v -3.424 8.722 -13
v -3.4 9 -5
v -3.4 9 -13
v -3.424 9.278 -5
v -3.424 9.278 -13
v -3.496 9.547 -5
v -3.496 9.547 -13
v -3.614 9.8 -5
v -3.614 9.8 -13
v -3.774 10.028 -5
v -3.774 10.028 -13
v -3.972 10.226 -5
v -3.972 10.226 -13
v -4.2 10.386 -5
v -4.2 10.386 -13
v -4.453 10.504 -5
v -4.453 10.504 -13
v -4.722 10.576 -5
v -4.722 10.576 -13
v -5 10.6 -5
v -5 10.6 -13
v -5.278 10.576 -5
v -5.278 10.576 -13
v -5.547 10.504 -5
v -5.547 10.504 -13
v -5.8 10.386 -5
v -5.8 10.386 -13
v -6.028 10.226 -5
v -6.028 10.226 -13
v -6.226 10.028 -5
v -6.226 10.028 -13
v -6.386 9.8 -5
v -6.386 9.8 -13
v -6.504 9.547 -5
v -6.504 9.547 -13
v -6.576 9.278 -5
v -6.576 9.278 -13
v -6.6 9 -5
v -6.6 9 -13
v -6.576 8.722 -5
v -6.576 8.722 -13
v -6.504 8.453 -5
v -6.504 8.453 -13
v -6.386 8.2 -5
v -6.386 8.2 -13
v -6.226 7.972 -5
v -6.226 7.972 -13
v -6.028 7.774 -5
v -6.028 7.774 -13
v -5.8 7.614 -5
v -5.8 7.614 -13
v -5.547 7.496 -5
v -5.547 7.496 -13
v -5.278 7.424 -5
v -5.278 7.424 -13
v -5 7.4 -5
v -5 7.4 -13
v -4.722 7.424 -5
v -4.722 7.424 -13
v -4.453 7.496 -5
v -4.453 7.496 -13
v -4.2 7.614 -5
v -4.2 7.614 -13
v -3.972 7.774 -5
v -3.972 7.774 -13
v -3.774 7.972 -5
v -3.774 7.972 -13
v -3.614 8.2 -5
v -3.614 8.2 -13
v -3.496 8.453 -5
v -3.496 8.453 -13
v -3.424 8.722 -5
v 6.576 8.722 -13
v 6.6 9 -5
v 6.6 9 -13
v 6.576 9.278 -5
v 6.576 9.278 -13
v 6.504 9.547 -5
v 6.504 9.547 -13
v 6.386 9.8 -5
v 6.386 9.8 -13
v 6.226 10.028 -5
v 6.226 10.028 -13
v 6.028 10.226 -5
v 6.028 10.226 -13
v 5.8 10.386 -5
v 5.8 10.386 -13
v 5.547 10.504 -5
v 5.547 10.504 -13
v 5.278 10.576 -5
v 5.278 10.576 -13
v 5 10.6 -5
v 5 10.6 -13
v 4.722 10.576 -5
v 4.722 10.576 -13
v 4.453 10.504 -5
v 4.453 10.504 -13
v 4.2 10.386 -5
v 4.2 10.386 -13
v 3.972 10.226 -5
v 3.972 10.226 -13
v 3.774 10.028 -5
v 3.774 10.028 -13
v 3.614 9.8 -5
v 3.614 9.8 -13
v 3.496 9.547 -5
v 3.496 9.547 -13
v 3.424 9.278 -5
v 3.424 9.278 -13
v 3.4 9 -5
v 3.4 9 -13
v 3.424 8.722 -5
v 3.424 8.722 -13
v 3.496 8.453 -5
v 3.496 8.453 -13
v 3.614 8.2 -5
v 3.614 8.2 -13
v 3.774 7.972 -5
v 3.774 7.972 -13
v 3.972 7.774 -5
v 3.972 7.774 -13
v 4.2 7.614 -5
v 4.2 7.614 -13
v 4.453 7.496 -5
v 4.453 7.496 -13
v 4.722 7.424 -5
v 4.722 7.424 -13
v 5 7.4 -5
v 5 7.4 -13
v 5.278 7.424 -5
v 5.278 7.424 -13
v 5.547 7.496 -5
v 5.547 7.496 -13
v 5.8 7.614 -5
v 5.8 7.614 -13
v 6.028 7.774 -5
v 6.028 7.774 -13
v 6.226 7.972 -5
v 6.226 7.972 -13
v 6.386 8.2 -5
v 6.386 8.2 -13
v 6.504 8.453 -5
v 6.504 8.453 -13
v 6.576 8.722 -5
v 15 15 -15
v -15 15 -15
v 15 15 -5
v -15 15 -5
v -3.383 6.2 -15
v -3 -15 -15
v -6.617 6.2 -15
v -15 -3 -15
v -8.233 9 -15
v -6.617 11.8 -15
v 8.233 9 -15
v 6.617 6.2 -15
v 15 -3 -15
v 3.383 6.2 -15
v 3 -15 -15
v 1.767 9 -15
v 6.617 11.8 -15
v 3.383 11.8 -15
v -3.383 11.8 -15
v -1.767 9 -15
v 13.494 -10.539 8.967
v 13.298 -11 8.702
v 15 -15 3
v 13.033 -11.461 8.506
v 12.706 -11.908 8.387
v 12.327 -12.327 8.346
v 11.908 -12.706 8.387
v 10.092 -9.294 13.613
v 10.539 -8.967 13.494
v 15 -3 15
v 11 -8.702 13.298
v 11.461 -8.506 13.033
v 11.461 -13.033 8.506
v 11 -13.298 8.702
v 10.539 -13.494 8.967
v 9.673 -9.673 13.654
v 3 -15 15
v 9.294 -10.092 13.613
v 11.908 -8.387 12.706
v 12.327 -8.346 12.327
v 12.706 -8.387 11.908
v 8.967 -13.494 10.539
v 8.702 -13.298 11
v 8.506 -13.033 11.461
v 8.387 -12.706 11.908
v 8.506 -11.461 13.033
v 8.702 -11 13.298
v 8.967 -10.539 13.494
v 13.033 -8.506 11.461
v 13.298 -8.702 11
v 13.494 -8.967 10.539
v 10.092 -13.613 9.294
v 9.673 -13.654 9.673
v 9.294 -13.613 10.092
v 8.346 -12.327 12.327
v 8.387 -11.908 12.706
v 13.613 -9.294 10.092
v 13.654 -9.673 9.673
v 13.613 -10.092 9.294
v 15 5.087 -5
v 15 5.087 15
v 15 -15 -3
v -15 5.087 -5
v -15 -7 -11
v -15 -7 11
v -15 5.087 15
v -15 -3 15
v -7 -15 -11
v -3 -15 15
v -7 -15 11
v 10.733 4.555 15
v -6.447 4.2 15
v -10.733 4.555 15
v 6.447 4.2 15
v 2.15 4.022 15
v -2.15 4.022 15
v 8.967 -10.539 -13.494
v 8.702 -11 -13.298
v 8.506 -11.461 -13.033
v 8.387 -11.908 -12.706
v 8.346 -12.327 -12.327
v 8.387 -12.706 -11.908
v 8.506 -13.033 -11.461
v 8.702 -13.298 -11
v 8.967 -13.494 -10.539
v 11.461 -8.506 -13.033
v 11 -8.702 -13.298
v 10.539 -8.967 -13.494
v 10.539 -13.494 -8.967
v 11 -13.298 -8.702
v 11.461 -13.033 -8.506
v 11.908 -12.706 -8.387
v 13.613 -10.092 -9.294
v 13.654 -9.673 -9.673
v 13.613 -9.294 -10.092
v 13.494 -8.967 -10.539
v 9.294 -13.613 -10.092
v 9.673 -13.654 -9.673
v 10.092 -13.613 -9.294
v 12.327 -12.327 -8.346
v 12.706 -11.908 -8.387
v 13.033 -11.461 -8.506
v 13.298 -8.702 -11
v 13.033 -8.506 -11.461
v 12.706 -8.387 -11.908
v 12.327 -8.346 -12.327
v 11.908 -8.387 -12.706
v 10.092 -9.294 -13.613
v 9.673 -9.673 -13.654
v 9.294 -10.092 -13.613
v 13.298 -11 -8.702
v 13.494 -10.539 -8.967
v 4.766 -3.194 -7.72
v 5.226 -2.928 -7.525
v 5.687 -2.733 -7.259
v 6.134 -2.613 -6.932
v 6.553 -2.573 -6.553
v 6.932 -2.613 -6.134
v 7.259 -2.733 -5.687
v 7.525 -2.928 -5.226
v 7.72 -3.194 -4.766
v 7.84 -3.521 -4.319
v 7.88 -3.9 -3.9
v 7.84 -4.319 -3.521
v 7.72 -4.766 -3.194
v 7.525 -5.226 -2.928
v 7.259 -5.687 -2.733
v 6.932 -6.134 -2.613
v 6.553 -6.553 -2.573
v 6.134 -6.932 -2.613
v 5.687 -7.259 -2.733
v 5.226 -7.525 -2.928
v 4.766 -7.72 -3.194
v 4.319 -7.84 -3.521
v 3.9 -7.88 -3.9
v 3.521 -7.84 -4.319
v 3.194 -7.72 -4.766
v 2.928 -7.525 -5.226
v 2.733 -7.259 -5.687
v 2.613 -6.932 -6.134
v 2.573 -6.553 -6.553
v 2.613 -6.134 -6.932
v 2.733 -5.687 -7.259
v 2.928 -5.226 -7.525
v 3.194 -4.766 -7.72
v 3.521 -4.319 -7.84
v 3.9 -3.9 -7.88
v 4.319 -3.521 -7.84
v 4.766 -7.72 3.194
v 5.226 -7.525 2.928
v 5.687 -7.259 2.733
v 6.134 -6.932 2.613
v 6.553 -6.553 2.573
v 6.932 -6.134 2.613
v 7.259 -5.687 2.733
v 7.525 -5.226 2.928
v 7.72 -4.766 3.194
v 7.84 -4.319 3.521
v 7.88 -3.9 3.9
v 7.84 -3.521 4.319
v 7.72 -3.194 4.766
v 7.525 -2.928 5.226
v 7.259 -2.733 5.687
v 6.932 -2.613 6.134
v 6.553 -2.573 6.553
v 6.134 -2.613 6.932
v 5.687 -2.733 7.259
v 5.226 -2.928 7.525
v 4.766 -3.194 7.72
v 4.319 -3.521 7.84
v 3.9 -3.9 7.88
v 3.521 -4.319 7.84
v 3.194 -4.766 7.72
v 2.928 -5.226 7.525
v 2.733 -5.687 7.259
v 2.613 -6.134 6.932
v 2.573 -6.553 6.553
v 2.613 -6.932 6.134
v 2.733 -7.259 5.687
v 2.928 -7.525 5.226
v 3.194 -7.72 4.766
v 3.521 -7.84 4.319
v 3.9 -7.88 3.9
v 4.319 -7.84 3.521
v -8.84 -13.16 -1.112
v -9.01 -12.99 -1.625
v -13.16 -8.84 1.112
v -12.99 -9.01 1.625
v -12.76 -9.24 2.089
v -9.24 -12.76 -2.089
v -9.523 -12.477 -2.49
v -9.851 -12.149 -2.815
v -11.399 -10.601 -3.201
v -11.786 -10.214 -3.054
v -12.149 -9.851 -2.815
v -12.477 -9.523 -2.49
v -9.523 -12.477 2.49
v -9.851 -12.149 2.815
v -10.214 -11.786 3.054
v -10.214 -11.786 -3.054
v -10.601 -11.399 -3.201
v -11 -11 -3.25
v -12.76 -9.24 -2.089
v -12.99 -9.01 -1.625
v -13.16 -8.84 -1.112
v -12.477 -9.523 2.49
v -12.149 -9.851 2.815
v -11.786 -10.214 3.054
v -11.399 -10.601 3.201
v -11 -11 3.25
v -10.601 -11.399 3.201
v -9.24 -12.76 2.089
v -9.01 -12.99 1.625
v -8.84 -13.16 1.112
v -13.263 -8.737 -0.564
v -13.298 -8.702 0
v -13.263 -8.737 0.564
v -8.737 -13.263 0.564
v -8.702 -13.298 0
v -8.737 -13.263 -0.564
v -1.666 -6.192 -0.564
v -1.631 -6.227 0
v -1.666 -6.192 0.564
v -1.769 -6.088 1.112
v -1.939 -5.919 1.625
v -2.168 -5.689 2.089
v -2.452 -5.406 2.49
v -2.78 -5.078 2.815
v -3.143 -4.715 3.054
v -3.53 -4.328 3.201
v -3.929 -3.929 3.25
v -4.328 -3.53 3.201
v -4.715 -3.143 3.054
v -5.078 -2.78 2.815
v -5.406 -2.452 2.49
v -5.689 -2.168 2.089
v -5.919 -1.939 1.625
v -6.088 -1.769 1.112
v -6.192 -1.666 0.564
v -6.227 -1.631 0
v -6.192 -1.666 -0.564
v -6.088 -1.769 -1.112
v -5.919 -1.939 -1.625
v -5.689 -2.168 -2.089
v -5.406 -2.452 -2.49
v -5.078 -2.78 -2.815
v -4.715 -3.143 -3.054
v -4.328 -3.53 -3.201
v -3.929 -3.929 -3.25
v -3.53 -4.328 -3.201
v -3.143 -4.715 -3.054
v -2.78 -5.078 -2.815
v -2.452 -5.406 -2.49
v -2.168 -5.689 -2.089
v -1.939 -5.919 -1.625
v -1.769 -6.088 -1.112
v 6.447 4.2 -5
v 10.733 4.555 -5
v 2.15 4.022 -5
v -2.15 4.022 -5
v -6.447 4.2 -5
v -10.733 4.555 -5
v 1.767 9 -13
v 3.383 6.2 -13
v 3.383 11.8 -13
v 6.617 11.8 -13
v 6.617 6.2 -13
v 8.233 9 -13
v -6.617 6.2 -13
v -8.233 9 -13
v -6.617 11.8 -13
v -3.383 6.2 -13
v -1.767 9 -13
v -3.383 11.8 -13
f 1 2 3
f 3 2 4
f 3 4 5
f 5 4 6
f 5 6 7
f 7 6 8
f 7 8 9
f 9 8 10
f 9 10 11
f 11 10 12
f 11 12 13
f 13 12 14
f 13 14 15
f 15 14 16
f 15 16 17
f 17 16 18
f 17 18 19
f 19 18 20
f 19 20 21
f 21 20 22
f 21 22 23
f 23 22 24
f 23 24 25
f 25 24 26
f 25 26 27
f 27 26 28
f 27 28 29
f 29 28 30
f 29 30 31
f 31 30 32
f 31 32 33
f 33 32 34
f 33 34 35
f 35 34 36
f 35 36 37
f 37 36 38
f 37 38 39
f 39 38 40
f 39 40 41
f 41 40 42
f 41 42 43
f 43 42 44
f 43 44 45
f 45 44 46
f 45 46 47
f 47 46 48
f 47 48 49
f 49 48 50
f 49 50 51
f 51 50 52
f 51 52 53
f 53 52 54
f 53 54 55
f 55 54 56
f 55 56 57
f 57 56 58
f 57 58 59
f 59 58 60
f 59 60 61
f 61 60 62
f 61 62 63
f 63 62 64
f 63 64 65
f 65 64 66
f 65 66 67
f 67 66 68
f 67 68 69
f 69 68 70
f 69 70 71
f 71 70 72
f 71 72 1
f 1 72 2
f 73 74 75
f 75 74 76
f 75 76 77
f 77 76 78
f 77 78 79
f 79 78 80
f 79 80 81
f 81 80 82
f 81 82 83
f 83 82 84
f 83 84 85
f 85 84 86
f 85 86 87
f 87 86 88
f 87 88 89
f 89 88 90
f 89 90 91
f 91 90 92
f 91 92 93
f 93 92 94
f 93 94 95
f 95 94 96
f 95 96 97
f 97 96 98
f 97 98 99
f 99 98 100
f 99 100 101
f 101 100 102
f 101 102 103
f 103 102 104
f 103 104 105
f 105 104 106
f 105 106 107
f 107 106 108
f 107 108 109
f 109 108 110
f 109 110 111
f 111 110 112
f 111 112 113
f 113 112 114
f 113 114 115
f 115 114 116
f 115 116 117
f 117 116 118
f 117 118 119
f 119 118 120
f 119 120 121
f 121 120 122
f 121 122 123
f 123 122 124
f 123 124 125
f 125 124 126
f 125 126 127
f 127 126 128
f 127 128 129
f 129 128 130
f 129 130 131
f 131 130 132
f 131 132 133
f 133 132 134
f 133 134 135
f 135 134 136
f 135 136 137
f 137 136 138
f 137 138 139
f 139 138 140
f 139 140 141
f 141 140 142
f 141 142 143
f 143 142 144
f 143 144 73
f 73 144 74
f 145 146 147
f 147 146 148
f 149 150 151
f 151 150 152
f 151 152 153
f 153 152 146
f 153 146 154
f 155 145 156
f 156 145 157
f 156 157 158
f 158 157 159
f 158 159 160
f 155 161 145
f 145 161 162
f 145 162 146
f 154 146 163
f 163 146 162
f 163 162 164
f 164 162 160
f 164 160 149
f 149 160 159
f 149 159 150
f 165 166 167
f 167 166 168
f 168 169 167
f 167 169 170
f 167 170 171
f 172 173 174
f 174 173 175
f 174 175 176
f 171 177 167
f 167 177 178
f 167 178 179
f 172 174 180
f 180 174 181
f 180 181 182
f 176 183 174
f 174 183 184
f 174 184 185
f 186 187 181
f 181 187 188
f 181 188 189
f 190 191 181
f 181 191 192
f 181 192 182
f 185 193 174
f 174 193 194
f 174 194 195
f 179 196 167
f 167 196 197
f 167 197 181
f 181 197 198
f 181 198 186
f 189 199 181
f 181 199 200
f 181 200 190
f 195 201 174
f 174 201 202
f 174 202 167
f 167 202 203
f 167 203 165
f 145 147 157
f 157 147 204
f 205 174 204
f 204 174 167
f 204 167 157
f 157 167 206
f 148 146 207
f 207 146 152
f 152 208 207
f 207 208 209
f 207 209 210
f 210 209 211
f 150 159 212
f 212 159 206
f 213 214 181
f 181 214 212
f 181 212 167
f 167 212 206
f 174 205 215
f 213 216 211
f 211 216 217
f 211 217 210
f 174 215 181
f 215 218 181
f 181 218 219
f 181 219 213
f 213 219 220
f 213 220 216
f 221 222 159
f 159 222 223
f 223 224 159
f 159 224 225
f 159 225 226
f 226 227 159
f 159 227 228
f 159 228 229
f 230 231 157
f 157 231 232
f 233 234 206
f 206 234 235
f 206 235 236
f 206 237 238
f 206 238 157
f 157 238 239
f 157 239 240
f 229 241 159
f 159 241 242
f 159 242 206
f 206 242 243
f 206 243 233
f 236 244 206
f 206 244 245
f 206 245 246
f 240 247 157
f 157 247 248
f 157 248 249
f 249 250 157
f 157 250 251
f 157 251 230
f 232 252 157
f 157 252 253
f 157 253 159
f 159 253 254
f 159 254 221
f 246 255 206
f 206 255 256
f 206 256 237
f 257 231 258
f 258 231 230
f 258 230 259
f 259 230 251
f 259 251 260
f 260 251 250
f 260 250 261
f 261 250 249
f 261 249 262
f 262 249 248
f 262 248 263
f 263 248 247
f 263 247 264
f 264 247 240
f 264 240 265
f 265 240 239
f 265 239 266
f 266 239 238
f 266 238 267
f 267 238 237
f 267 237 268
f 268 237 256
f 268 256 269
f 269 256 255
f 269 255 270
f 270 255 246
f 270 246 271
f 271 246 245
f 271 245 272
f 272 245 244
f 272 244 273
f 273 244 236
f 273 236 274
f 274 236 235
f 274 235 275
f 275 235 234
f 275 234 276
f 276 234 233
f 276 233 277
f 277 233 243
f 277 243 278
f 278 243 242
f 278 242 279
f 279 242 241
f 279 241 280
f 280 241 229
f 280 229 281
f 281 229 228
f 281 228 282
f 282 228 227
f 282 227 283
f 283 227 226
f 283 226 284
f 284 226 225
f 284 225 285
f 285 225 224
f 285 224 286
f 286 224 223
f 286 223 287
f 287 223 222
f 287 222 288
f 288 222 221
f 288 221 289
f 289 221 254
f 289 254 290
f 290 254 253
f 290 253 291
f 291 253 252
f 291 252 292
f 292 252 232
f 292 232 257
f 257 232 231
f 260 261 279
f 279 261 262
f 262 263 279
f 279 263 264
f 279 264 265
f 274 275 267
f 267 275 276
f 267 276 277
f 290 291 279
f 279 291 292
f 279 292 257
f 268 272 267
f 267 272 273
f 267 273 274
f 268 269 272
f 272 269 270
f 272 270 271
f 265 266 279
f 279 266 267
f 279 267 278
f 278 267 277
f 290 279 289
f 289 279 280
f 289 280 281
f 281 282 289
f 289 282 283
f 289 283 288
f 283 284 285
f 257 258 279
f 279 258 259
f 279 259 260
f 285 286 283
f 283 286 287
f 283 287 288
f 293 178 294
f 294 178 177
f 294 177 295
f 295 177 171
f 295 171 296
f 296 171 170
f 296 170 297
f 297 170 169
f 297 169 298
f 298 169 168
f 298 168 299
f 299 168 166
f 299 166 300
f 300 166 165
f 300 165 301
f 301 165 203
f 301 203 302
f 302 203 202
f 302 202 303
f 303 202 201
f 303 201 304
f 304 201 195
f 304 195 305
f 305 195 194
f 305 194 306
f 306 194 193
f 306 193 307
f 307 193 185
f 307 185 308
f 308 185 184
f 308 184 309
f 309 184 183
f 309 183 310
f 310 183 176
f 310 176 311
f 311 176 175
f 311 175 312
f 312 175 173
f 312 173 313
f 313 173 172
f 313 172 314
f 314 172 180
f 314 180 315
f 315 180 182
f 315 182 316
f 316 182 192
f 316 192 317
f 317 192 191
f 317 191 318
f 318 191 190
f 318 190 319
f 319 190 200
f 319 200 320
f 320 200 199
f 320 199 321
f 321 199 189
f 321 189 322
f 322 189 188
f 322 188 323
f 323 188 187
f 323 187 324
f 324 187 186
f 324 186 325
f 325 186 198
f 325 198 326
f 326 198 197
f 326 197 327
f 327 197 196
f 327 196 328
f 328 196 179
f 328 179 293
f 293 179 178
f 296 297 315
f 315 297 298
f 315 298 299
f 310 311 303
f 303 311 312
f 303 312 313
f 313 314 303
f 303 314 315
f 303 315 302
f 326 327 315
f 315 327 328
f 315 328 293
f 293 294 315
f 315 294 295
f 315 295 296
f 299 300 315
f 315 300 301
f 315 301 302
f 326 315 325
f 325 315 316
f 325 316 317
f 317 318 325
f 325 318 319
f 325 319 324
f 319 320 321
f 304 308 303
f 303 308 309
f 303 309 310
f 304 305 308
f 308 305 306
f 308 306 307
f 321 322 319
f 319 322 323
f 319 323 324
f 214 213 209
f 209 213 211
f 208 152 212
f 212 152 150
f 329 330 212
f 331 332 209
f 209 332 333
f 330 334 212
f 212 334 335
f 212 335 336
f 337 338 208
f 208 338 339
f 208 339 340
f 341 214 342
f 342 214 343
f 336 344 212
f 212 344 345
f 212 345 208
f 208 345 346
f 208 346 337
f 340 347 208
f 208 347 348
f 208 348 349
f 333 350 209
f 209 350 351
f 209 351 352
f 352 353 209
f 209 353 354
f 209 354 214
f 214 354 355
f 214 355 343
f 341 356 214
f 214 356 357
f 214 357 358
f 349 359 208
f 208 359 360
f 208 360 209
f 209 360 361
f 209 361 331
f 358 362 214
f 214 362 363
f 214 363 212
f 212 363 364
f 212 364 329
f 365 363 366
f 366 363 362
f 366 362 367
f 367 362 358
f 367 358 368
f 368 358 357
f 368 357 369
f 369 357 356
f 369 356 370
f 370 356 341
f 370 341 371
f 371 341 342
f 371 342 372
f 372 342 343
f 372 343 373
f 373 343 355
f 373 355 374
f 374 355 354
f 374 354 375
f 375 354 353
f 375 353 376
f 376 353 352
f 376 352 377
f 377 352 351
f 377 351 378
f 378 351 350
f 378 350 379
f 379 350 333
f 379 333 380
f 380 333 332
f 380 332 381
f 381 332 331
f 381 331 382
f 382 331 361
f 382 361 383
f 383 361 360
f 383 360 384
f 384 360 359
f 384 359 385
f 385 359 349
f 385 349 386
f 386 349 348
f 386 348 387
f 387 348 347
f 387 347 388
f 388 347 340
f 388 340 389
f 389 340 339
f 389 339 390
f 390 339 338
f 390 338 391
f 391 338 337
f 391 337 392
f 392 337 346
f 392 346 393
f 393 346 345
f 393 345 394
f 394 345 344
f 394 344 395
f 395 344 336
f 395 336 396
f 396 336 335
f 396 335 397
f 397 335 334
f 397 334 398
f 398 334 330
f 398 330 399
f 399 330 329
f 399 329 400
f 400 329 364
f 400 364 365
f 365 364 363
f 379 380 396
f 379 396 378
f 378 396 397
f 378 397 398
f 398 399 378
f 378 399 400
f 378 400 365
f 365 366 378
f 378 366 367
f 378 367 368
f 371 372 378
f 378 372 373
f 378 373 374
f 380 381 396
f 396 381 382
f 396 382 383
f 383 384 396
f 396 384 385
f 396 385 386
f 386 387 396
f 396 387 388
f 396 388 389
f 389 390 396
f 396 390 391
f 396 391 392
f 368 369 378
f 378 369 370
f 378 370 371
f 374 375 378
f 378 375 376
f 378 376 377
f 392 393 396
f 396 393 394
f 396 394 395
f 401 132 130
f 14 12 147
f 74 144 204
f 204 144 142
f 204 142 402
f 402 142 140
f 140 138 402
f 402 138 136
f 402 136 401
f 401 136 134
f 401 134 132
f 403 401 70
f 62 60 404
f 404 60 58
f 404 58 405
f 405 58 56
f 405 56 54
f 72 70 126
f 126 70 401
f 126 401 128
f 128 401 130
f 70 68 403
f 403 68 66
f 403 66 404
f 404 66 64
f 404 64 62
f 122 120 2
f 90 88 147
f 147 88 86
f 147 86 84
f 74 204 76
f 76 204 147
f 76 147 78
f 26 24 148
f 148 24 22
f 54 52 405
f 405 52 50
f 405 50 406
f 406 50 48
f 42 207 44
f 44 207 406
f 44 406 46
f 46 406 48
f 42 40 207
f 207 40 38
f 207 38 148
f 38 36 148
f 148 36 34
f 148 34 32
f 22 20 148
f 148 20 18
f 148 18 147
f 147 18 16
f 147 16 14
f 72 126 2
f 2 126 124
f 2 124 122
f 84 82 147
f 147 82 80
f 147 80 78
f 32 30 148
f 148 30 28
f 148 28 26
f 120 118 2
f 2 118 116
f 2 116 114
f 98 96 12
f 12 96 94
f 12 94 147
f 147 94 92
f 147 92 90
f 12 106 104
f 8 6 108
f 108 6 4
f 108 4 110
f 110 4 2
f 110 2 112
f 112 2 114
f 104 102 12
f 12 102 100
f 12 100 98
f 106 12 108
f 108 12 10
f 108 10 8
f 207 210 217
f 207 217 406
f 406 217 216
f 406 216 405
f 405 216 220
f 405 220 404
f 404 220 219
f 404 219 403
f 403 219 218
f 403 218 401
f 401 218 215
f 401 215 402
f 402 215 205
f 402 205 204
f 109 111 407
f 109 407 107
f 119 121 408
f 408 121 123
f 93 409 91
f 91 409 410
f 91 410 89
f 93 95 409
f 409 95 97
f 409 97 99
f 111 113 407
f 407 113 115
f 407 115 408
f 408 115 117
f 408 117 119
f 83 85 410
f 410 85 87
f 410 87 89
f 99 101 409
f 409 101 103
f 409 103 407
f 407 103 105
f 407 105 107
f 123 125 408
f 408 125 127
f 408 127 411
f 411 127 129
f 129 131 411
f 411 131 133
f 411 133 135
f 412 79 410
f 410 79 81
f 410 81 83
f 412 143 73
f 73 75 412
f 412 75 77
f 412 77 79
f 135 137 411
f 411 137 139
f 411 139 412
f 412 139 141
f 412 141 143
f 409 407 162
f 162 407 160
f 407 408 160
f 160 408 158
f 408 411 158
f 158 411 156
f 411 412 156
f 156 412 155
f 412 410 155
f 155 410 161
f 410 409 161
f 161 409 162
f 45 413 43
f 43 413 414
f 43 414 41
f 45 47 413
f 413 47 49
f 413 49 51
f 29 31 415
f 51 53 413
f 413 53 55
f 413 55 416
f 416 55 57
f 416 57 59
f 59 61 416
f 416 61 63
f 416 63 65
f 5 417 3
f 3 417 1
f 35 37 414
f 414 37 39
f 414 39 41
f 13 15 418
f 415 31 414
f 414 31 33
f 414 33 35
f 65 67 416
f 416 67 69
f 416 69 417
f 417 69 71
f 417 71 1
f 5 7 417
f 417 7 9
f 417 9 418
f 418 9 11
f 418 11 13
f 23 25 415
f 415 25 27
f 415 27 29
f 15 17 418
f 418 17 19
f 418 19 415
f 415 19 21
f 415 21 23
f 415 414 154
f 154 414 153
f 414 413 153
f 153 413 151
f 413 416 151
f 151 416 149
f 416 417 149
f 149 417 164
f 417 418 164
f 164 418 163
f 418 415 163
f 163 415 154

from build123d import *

# Parameters (mm, degrees)
ESQUISSE1_W             = 30
ESQUISSE1_H             = 30
BOSS_EXTRU_1_DEPTH      = 15
CHANFREIN1_START        = 19.052558883
CHANFREIN1_OUTLINE_W    = 17
CHANFREIN1_OUTLINE_H    = 20
CHANFREIN1_DEPTH        = 7.947441117
CHANFREIN2_START        = 19.052558883
CHANFREIN2_OUTLINE_W    = 17
CHANFREIN2_OUTLINE_H    = 20
CHANFREIN2_DEPTH        = 7.947441117
ESQUISSE2_R             = 3.25
ENL_V_MAT_EXTRU_1_DEPTH = 10
CHANFREIN4_START        = -27
CHANFREIN4_OUTLINE_W    = 17
CHANFREIN4_OUTLINE_H    = 20
CHANFREIN4_DEPTH        = 7.947441117
CHANFREIN5_START        = -27
CHANFREIN5_OUTLINE_W    = 17
CHANFREIN5_OUTLINE_H    = 20
CHANFREIN5_DEPTH        = 7.947441117
CHANFREIN3_SIZE         = 8
ESQUISSE3_R             = 3.25
ENL_V_MAT_EXTRU_2_DEPTH = 10
ESQUISSE4_R             = 104
ENL_V_MAT_EXTRU_3_DEPTH = 20
ESQUISSE5_R             = 1.6
ENL_V_MAT_EXTRU_4_DEPTH = 20
ENL_V_MAT_EXTRU_5_DEPTH = 2


with BuildPart() as part:
    # Esquisse1 → Boss.-Extru.1 (new, symmetric)
    with BuildSketch(Plane.XY):
        Rectangle(ESQUISSE1_W, ESQUISSE1_H)
    extrude(amount=BOSS_EXTRU_1_DEPTH, both=True)

    # Chanfrein1: read off the stored shape, not the designer's step
    # Chanfrein1 outline → Chanfrein1 (cut)
    with BuildSketch(Plane(origin=(0, 0, 0), x_dir=(0.8164965809277258, 0.40824829046386313, 0.40824829046386313), z_dir=(0.5773502691896258, -0.5773502691896258, -0.5773502691896258)).offset(CHANFREIN1_START)):
        with Locations((-2.5, 0)):
            Rectangle(CHANFREIN1_OUTLINE_W, CHANFREIN1_OUTLINE_H)
    extrude(amount=CHANFREIN1_DEPTH, mode=Mode.SUBTRACT)

    # Chanfrein2: read off the stored shape, not the designer's step
    # Chanfrein2 outline → Chanfrein2 (cut)
    with BuildSketch(Plane(origin=(0, 0, 0), x_dir=(0.8164965809277258, 0.40824829046386313, -0.40824829046386313), z_dir=(0.5773502691896258, -0.5773502691896258, 0.5773502691896258)).offset(CHANFREIN2_START)):
        with Locations((-2.5, 0)):
            Rectangle(CHANFREIN2_OUTLINE_W, CHANFREIN2_OUTLINE_H)
    extrude(amount=CHANFREIN2_DEPTH, mode=Mode.SUBTRACT)

    # Esquisse2 → Enlèv. mat.-Extru.1 (cut)
    with BuildSketch(Plane(origin=(11, -11, -11), x_dir=(-0.40824829046386296, 0.4082482904638631, -0.816496580927726), z_dir=(0.5773502691896257, -0.5773502691896258, -0.5773502691896258))):
        with Locations(Location((0, 0, 0), (0, 0, 30))):
            Circle(ESQUISSE2_R)
    enl_v_mat_extru_1 = extrude(amount=-ENL_V_MAT_EXTRU_1_DEPTH, mode=Mode.SUBTRACT)

    # Symétrie3: Enlèv. mat.-Extru.1 across plane
    add(enl_v_mat_extru_1.mirror(Plane.XY), mode=Mode.SUBTRACT)

    # Chanfrein4: read off the stored shape, not the designer's step
    # Chanfrein4 outline → Chanfrein4 (cut)
    with BuildSketch(Plane(origin=(0, 0, 0), x_dir=(0.8164965809277258, -0.40824829046386313, 0.40824829046386313), z_dir=(0.5773502691896258, 0.5773502691896258, -0.5773502691896258)).offset(CHANFREIN4_START)):
        with Locations((2.5, 0)):
            Rectangle(CHANFREIN4_OUTLINE_W, CHANFREIN4_OUTLINE_H)
    extrude(amount=CHANFREIN4_DEPTH, mode=Mode.SUBTRACT)

    # Chanfrein5: read off the stored shape, not the designer's step
    # Chanfrein5 outline → Chanfrein5 (cut)
    with BuildSketch(Plane(origin=(0, 0, 0), x_dir=(0.8164965809277258, -0.40824829046386313, -0.40824829046386313), z_dir=(0.5773502691896258, 0.5773502691896258, 0.5773502691896258)).offset(CHANFREIN5_START)):
        with Locations((2.5, 0)):
            Rectangle(CHANFREIN5_OUTLINE_W, CHANFREIN5_OUTLINE_H)
    extrude(amount=CHANFREIN5_DEPTH, mode=Mode.SUBTRACT)

    # Chanfrein3
    chanfrein3_edges = [part.edges().sort_by_distance(p)[0] for p in [
        (-15, -15, 0),
    ]]
    chamfer(chanfrein3_edges, length=CHANFREIN3_SIZE)

    # Esquisse3 → Enlèv. mat.-Extru.2 (cut)
    with BuildSketch(Plane(origin=(-11, -11, 0), x_dir=(0, 0, 1), z_dir=(-0.7071067811865487, -0.7071067811865465, 0))):
        with Locations(Location((0, 0, 0), (0, 0, 270))):
            Circle(ESQUISSE3_R)
    extrude(amount=-ENL_V_MAT_EXTRU_2_DEPTH, mode=Mode.SUBTRACT)

    # Esquisse4 → Enlèv. mat.-Extru.3 (cut)
    with BuildSketch(Plane.XY.offset(15)):
        with Locations((0, 108)):
            Circle(ESQUISSE4_R)
    extrude(amount=-ENL_V_MAT_EXTRU_3_DEPTH, mode=Mode.SUBTRACT)

    # Esquisse5 → Enlèv. mat.-Extru.4 (cut)
    with BuildSketch(Plane.XY.offset(-5)):
        with Locations((-5, 9)):
            Circle(ESQUISSE5_R)
        with Locations((5, 9)):
            Circle(ESQUISSE5_R)
    extrude(amount=-ENL_V_MAT_EXTRU_4_DEPTH, mode=Mode.SUBTRACT)

    # Esquisse6 → Enlèv. mat.-Extru.5 (cut)
    with BuildSketch(Plane(origin=(0, 0, -15), x_dir=(-1, 0, 0), z_dir=(0, 0, -1))):
        Polygon((-3.383419246, 11.8), (-6.616580754, 11.8), (-8.233161507, 9), (-6.616580754, 6.2), (-3.383419246, 6.2), (-1.766838493, 9), align=None)
        Polygon((6.616580754, 11.8), (3.383419246, 11.8), (1.766838493, 9), (3.383419246, 6.2), (6.616580754, 6.2), (8.233161507, 9), align=None)
    extrude(amount=-ENL_V_MAT_EXTRU_5_DEPTH, mode=Mode.SUBTRACT)


solid = part.part
